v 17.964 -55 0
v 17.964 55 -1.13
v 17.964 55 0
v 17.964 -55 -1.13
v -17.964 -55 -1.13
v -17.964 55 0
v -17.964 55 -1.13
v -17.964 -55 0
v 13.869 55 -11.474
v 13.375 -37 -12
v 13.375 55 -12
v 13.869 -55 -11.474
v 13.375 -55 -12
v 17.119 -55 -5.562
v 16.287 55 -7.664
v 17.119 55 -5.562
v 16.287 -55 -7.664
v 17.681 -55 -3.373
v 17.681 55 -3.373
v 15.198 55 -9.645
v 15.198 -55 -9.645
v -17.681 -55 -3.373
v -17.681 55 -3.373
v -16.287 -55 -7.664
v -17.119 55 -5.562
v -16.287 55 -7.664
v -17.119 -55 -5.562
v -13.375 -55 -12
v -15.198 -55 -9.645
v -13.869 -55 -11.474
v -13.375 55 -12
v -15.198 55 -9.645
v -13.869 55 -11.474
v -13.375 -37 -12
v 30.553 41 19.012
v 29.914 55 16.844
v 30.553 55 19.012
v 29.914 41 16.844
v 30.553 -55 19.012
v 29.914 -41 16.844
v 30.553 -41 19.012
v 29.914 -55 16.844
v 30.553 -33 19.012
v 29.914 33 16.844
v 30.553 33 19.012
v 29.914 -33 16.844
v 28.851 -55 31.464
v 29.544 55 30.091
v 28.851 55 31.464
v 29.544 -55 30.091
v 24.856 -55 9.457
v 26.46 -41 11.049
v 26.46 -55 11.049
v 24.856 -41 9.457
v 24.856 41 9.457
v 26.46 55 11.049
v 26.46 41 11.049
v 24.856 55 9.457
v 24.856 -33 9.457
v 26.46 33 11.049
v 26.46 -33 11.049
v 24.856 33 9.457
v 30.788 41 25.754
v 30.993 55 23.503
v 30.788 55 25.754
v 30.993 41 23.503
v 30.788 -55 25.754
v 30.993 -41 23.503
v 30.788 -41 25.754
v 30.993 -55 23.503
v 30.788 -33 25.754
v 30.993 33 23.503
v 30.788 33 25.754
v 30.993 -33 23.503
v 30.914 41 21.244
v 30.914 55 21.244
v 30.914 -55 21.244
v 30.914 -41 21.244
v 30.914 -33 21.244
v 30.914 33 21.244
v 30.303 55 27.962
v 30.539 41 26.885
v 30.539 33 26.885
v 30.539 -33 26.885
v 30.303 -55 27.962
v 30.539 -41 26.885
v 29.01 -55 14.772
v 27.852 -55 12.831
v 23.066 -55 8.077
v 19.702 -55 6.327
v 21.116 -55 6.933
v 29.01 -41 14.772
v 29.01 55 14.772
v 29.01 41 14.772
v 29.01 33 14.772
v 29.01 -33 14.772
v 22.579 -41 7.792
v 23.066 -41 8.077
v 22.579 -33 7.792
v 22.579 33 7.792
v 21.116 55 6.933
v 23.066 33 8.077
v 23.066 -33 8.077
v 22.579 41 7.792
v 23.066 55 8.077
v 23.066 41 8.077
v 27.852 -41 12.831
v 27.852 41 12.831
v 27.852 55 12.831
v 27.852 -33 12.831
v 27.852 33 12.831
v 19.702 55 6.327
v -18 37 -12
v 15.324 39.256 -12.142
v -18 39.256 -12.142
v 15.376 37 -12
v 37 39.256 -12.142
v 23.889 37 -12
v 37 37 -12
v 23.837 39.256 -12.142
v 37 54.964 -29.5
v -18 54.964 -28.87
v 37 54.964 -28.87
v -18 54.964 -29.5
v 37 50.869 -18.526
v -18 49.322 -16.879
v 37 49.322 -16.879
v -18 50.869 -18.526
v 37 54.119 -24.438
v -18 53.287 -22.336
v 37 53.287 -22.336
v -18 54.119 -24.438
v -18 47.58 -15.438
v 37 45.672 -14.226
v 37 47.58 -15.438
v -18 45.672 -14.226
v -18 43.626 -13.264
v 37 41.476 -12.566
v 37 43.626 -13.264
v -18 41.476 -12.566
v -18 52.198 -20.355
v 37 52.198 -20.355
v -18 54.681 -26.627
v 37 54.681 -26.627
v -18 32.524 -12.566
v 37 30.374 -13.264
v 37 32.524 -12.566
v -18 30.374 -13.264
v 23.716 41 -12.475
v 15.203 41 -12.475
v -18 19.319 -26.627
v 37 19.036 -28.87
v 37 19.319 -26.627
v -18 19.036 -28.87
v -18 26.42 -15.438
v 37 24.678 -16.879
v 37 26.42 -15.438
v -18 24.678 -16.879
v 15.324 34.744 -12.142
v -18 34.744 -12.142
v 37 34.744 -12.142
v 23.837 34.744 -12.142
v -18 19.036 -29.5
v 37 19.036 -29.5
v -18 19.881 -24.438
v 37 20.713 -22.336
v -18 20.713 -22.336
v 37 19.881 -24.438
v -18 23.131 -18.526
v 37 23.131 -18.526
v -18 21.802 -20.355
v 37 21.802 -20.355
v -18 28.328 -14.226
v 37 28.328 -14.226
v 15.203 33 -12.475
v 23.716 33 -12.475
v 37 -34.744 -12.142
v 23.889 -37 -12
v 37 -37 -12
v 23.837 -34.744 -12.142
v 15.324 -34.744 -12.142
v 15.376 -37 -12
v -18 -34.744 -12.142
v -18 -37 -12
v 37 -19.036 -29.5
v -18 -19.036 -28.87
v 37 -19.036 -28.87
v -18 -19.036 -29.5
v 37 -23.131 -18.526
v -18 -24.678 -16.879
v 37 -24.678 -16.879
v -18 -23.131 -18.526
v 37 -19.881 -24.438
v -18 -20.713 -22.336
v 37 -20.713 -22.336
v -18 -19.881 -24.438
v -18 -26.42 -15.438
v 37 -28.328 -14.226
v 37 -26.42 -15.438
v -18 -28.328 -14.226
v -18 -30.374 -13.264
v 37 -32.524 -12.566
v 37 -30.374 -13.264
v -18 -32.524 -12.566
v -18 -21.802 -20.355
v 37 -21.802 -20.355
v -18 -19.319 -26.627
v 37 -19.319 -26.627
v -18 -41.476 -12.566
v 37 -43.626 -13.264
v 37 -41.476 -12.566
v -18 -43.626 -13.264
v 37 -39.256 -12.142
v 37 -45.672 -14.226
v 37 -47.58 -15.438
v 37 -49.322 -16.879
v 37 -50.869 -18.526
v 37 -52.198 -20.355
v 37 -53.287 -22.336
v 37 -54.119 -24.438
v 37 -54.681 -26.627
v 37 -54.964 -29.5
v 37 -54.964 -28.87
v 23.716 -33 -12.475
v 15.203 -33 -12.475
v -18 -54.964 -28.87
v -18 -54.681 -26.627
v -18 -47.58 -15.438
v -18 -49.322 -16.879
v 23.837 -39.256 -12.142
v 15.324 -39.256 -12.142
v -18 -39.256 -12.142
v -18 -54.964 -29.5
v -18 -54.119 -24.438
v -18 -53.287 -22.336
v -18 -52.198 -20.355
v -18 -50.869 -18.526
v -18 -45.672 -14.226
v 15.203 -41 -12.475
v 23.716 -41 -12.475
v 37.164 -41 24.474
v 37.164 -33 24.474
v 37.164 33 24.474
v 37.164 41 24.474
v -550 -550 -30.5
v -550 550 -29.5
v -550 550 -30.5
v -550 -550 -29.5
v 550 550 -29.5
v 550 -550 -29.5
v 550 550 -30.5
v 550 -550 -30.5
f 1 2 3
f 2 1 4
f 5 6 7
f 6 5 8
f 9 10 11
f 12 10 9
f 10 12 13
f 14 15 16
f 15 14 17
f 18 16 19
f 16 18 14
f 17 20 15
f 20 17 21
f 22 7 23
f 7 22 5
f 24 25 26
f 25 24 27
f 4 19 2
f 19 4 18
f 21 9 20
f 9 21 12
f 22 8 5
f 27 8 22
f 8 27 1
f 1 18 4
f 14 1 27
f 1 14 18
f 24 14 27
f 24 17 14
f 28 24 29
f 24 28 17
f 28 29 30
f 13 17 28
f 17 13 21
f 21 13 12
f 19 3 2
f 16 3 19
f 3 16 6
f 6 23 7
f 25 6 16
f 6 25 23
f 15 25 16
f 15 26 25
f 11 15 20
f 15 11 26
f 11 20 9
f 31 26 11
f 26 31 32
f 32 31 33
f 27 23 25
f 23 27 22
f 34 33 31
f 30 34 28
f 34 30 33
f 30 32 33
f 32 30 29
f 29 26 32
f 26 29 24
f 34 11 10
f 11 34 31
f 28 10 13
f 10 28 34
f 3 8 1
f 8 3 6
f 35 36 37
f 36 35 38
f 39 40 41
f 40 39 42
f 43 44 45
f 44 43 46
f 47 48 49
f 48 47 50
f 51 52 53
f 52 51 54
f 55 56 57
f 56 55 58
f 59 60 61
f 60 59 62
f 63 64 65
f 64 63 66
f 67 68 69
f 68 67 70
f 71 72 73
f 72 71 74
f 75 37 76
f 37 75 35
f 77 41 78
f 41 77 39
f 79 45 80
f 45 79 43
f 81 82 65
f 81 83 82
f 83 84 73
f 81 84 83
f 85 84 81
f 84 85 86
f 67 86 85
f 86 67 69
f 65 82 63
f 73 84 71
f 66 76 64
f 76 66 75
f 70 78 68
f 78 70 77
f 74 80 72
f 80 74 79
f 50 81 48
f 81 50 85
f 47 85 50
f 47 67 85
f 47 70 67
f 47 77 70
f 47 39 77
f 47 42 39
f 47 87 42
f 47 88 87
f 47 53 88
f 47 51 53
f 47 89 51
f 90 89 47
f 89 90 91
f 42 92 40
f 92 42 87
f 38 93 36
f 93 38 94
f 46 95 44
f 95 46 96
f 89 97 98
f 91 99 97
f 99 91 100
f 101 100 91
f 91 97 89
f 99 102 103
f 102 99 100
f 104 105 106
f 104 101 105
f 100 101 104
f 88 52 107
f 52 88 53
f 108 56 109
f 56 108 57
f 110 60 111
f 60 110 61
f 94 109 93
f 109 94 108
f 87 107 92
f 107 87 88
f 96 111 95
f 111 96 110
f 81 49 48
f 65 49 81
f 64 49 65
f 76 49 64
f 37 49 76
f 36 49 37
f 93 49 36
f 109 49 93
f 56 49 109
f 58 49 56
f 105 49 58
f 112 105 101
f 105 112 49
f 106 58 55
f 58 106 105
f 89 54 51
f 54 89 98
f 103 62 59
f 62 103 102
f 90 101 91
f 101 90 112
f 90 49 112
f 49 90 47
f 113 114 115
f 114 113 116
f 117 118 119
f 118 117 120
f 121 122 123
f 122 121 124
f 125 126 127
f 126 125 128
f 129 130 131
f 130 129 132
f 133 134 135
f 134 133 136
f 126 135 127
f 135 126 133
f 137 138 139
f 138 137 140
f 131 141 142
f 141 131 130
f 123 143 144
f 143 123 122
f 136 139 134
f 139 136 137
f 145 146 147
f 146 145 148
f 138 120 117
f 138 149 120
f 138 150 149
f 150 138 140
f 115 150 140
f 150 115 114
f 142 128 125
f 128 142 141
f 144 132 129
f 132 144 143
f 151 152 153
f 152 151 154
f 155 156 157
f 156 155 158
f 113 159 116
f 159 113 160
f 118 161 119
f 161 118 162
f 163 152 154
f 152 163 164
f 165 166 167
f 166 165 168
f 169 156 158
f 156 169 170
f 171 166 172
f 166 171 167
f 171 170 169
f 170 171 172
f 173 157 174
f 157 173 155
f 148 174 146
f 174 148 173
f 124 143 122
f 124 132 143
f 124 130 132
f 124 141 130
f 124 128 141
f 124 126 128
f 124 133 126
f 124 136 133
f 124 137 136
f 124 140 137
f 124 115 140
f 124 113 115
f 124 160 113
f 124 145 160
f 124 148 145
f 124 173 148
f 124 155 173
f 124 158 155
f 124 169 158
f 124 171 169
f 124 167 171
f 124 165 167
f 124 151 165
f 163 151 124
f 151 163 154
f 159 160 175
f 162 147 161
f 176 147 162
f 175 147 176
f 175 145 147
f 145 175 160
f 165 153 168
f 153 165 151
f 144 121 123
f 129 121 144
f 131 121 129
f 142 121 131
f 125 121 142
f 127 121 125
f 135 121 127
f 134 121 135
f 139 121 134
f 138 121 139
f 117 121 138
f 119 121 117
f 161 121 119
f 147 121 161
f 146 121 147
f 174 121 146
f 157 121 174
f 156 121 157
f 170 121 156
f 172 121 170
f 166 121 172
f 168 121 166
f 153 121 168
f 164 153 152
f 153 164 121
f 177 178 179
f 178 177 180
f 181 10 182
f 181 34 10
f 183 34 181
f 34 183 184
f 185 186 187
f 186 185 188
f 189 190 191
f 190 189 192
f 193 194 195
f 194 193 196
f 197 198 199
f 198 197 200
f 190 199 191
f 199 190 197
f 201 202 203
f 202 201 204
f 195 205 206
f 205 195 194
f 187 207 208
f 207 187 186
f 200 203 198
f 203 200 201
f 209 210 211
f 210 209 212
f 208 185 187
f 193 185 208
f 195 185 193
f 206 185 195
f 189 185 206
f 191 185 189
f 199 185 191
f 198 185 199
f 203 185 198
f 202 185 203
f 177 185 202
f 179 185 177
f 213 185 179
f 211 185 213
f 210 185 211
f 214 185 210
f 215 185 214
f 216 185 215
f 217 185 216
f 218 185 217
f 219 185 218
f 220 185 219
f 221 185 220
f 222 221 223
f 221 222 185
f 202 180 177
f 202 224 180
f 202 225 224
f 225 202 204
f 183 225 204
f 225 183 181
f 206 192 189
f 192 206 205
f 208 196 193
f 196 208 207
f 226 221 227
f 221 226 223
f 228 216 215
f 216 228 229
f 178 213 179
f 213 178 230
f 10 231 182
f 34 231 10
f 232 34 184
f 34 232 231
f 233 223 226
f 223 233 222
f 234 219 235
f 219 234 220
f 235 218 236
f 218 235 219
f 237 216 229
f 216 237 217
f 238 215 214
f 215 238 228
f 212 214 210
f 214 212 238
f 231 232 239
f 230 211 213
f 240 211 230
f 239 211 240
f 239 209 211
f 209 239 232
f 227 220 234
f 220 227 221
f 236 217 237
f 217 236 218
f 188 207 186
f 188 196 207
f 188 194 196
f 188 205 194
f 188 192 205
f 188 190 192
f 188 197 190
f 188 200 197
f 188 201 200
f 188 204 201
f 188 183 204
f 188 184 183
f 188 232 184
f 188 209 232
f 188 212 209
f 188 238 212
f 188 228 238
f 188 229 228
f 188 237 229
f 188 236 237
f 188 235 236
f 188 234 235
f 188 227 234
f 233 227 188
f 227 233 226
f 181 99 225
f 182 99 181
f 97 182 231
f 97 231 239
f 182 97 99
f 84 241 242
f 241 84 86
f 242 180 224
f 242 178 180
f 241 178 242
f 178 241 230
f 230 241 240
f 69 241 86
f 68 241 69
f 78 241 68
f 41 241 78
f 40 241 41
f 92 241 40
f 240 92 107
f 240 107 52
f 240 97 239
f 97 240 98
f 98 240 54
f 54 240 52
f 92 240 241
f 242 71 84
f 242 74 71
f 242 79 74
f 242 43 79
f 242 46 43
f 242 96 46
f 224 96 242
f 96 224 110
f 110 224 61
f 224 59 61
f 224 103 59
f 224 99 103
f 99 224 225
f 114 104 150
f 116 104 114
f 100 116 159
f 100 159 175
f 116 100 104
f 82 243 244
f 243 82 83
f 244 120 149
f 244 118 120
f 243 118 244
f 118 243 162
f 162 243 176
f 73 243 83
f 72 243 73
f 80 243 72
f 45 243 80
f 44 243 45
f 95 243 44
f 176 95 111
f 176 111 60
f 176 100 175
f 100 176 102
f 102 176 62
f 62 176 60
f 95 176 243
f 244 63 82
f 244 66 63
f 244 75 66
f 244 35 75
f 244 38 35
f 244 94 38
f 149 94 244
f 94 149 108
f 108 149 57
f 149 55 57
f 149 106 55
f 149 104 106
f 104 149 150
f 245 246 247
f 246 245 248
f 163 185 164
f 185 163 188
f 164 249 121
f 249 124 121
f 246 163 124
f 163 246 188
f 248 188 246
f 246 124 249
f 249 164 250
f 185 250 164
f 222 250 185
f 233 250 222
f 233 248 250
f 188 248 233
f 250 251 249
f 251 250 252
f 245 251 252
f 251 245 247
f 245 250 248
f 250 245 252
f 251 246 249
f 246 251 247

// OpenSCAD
// size in cm

logHeight = 110 ;
logDiam = 36 ;
backrestThickness = 6;
balkeThickness = 8;
backrestAngle = 20;

translate ([0,0,0]) rotate([90,90,0]) color("SaddleBrown") {bench();}
translate ([logDiam/2-5,0,logDiam/2+5]) rotate([90,backrestAngle,0]) color("SandyBrown") {backrest();}
translate ([logHeight/2-18,logHeight/2-logDiam/2,-logDiam+backrestThickness]) rotate([0,90,0]) color("Sienna") {base1();}
translate ([-18,-logHeight/2+logDiam/2,-logDiam+backrestThickness]) rotate([0,90,0]) color("Sienna") {base2();}

color("Grey") translate ([+logDiam/2+backrestThickness,-logHeight/2+logDiam/2,0]) rotate([0,backrestAngle,0]) balke();
color("Grey") translate ([+logDiam/2+backrestThickness,logHeight/2-logDiam/2,0]) rotate([0,backrestAngle,0]) balke();

color("Green") translate ([0,0,backrestThickness-logDiam]) rotate([0,0,0]) cube([logHeight*10,logHeight*10,1],center=true);

/*
translate ([0,0,0]) rotate([0,0,0]) color("SaddleBrown") {bench();}
translate ([-2,0,-1]) rotate([0,0,0]) color("Sienna") {base1();}
translate ([-2,0,1]) rotate([0,0,0]) color("Sienna") {base2();}
translate ([2,0,0]) rotate([0,0,0]) color("SandyBrown") {backrest();}
*/
module balke() { 
   cube([balkeThickness,balkeThickness,logHeight/2],center=true);
}


module bench() { 
difference (){
  cylinder( logHeight, d=logDiam, center=true, $fn=50 );
  translate ([20/2+logDiam/2-backrestThickness,0,0]) cube([20,logDiam+20,logHeight+20],center=true);
  translate ([-20/2,0,0]) cube([20,logDiam+20,logHeight+20],center=true);
  }
}

module backrest() { 
difference (){
  cylinder( logHeight, d=logDiam, center=true, $fn=50 );
  translate ([-logDiam/2+logDiam/2-backrestThickness,0,0]) cube([logDiam,logDiam+20,logHeight+20],center=true);
  }
}

module base1() { 
difference (){
  cylinder( logHeight, d=logDiam, center=true, $fn=50 );
  translate ([+20/2,0,0]) cube([20,logDiam+20,logHeight+20],center=true);
  translate ([-logDiam/2,0,logHeight/2+10]) cube([logDiam,logDiam+20,logHeight+20],center=true);
  }
}

module base2() { 
difference (){
  cylinder( logHeight, d=logDiam, center=true, $fn=50 );
  translate ([+20/2,0,0]) cube([20,logDiam+20,logHeight+20],center=true);
  translate ([-logDiam/2,0,-logHeight/2-10]) cube([logDiam,logDiam+20,logHeight+20],center=true);
  }
}
